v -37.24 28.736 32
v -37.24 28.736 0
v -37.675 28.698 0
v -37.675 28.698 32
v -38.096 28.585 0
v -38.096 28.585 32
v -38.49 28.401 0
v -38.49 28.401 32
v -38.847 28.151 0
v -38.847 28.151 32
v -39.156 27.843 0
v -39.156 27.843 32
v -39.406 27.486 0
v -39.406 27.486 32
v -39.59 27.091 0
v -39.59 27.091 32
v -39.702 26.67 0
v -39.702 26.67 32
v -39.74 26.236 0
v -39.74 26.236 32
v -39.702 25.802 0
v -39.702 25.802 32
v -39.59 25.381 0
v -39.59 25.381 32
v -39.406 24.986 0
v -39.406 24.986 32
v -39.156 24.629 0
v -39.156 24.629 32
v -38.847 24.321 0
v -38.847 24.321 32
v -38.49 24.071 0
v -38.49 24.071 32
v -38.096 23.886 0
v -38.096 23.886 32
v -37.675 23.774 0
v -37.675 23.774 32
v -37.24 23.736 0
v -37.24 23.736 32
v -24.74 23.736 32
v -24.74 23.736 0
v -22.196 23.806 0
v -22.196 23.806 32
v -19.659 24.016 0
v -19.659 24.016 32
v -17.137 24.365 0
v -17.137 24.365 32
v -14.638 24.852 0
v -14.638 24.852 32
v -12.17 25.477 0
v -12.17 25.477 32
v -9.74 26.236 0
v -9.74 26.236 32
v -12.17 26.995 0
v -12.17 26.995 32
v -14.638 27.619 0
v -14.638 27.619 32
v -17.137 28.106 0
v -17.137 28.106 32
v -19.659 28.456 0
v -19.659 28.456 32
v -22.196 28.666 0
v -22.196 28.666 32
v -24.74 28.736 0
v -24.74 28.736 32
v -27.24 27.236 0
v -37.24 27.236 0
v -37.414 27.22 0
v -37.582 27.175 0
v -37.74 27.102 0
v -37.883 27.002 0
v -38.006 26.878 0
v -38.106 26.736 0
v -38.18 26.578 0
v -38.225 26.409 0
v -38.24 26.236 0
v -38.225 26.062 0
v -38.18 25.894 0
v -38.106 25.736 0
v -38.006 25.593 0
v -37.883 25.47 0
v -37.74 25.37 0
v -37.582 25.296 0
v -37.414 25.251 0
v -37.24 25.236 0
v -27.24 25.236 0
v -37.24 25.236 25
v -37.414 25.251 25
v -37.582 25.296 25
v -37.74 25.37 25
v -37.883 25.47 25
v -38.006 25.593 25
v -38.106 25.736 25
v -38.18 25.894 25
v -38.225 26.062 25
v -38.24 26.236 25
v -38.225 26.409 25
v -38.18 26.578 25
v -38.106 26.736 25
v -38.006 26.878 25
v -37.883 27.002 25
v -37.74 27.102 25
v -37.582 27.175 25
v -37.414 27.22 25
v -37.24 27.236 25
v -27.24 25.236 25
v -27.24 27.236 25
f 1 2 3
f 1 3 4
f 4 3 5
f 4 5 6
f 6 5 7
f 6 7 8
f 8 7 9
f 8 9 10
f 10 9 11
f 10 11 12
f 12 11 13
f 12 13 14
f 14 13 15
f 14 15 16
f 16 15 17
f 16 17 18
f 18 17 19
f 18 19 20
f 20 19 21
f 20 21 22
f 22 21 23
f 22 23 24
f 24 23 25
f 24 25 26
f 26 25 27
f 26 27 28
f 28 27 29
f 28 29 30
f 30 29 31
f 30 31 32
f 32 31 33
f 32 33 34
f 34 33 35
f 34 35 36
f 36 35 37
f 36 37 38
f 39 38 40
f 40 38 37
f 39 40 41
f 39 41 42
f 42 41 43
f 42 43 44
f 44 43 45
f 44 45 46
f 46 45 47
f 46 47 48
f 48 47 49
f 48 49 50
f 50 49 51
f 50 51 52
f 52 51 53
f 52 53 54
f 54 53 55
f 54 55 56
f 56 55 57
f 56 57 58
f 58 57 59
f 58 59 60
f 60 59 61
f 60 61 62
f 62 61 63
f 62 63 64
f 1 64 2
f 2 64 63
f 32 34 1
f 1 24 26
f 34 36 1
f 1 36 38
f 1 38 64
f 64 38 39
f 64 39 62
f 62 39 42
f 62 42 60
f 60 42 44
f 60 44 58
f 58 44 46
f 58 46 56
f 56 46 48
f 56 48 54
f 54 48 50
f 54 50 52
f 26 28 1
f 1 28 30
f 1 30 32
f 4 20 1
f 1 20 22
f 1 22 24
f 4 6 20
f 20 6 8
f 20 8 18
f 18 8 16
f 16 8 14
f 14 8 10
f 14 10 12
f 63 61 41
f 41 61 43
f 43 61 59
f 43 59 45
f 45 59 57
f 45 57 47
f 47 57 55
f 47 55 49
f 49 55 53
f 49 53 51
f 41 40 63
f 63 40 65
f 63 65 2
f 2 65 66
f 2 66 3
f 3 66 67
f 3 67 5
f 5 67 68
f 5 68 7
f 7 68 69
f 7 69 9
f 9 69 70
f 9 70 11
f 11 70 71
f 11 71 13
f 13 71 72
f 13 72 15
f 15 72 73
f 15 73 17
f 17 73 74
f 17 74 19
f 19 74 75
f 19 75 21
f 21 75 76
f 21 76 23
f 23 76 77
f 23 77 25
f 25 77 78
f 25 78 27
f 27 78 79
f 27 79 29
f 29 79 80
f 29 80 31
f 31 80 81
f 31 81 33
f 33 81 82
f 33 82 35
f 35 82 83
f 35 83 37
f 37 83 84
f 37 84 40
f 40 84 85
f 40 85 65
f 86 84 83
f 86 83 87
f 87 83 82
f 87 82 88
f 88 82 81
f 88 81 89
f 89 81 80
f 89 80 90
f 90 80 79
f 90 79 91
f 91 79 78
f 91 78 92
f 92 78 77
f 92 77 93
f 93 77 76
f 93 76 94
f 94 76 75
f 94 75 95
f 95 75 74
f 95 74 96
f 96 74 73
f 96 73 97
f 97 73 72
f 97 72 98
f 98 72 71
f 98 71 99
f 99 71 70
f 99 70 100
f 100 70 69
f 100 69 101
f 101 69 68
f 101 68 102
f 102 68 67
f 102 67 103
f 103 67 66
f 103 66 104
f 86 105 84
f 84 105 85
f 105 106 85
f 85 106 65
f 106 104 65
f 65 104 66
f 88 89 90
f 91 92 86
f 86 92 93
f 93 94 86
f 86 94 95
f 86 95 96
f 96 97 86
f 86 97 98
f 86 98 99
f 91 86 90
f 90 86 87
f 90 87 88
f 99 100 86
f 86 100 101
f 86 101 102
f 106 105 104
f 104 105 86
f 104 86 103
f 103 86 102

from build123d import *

# Parameters (mm, degrees)
BOSS_EXTRU_1_DEPTH      = 32
ENL_V_MAT_EXTRU_2_DEPTH = 25


with BuildPart() as part:
    # Esquisse1 → Boss.-Extru.1 (new body)
    with BuildSketch(Plane.XY):
        with BuildLine():
            Line((-37.240452994, 28.735655929), (-24.740452994, 28.735655929))
            ThreePointArc((-24.740452994, 28.735655929), (-17.136999831, 28.106374906), (-9.740452994, 26.235655929))
            ThreePointArc((-9.740452994, 26.235655929), (-17.136999831, 24.364936952), (-24.740452994, 23.735655929))
            Line((-24.740452994, 23.735655929), (-37.240452994, 23.735655929))
            ThreePointArc((-37.240452994, 23.735655929), (-39.740452994, 26.235655929), (-37.240452994, 28.735655929))
        make_face()
    extrude(amount=BOSS_EXTRU_1_DEPTH)

    # Esquisse3 → Enlèv. mat.-Extru.2 (cut)
    with BuildSketch(Plane(origin=(0, 0, 0), x_dir=(-1, 0, 0), z_dir=(0, 0, -1))):
        with BuildLine():
            Line((37.240452994, 25.235655929), (27.240452994, 25.235655929))
            Line((27.240452994, 25.235655929), (27.240452994, 27.235655929))
            Line((27.240452994, 27.235655929), (37.240452994, 27.235655929))
            ThreePointArc((37.240452994, 27.235655929), (38.240452994, 26.235655929), (37.240452994, 25.235655929))
        make_face()
    extrude(amount=-ENL_V_MAT_EXTRU_2_DEPTH, mode=Mode.SUBTRACT)


solid = part.part
